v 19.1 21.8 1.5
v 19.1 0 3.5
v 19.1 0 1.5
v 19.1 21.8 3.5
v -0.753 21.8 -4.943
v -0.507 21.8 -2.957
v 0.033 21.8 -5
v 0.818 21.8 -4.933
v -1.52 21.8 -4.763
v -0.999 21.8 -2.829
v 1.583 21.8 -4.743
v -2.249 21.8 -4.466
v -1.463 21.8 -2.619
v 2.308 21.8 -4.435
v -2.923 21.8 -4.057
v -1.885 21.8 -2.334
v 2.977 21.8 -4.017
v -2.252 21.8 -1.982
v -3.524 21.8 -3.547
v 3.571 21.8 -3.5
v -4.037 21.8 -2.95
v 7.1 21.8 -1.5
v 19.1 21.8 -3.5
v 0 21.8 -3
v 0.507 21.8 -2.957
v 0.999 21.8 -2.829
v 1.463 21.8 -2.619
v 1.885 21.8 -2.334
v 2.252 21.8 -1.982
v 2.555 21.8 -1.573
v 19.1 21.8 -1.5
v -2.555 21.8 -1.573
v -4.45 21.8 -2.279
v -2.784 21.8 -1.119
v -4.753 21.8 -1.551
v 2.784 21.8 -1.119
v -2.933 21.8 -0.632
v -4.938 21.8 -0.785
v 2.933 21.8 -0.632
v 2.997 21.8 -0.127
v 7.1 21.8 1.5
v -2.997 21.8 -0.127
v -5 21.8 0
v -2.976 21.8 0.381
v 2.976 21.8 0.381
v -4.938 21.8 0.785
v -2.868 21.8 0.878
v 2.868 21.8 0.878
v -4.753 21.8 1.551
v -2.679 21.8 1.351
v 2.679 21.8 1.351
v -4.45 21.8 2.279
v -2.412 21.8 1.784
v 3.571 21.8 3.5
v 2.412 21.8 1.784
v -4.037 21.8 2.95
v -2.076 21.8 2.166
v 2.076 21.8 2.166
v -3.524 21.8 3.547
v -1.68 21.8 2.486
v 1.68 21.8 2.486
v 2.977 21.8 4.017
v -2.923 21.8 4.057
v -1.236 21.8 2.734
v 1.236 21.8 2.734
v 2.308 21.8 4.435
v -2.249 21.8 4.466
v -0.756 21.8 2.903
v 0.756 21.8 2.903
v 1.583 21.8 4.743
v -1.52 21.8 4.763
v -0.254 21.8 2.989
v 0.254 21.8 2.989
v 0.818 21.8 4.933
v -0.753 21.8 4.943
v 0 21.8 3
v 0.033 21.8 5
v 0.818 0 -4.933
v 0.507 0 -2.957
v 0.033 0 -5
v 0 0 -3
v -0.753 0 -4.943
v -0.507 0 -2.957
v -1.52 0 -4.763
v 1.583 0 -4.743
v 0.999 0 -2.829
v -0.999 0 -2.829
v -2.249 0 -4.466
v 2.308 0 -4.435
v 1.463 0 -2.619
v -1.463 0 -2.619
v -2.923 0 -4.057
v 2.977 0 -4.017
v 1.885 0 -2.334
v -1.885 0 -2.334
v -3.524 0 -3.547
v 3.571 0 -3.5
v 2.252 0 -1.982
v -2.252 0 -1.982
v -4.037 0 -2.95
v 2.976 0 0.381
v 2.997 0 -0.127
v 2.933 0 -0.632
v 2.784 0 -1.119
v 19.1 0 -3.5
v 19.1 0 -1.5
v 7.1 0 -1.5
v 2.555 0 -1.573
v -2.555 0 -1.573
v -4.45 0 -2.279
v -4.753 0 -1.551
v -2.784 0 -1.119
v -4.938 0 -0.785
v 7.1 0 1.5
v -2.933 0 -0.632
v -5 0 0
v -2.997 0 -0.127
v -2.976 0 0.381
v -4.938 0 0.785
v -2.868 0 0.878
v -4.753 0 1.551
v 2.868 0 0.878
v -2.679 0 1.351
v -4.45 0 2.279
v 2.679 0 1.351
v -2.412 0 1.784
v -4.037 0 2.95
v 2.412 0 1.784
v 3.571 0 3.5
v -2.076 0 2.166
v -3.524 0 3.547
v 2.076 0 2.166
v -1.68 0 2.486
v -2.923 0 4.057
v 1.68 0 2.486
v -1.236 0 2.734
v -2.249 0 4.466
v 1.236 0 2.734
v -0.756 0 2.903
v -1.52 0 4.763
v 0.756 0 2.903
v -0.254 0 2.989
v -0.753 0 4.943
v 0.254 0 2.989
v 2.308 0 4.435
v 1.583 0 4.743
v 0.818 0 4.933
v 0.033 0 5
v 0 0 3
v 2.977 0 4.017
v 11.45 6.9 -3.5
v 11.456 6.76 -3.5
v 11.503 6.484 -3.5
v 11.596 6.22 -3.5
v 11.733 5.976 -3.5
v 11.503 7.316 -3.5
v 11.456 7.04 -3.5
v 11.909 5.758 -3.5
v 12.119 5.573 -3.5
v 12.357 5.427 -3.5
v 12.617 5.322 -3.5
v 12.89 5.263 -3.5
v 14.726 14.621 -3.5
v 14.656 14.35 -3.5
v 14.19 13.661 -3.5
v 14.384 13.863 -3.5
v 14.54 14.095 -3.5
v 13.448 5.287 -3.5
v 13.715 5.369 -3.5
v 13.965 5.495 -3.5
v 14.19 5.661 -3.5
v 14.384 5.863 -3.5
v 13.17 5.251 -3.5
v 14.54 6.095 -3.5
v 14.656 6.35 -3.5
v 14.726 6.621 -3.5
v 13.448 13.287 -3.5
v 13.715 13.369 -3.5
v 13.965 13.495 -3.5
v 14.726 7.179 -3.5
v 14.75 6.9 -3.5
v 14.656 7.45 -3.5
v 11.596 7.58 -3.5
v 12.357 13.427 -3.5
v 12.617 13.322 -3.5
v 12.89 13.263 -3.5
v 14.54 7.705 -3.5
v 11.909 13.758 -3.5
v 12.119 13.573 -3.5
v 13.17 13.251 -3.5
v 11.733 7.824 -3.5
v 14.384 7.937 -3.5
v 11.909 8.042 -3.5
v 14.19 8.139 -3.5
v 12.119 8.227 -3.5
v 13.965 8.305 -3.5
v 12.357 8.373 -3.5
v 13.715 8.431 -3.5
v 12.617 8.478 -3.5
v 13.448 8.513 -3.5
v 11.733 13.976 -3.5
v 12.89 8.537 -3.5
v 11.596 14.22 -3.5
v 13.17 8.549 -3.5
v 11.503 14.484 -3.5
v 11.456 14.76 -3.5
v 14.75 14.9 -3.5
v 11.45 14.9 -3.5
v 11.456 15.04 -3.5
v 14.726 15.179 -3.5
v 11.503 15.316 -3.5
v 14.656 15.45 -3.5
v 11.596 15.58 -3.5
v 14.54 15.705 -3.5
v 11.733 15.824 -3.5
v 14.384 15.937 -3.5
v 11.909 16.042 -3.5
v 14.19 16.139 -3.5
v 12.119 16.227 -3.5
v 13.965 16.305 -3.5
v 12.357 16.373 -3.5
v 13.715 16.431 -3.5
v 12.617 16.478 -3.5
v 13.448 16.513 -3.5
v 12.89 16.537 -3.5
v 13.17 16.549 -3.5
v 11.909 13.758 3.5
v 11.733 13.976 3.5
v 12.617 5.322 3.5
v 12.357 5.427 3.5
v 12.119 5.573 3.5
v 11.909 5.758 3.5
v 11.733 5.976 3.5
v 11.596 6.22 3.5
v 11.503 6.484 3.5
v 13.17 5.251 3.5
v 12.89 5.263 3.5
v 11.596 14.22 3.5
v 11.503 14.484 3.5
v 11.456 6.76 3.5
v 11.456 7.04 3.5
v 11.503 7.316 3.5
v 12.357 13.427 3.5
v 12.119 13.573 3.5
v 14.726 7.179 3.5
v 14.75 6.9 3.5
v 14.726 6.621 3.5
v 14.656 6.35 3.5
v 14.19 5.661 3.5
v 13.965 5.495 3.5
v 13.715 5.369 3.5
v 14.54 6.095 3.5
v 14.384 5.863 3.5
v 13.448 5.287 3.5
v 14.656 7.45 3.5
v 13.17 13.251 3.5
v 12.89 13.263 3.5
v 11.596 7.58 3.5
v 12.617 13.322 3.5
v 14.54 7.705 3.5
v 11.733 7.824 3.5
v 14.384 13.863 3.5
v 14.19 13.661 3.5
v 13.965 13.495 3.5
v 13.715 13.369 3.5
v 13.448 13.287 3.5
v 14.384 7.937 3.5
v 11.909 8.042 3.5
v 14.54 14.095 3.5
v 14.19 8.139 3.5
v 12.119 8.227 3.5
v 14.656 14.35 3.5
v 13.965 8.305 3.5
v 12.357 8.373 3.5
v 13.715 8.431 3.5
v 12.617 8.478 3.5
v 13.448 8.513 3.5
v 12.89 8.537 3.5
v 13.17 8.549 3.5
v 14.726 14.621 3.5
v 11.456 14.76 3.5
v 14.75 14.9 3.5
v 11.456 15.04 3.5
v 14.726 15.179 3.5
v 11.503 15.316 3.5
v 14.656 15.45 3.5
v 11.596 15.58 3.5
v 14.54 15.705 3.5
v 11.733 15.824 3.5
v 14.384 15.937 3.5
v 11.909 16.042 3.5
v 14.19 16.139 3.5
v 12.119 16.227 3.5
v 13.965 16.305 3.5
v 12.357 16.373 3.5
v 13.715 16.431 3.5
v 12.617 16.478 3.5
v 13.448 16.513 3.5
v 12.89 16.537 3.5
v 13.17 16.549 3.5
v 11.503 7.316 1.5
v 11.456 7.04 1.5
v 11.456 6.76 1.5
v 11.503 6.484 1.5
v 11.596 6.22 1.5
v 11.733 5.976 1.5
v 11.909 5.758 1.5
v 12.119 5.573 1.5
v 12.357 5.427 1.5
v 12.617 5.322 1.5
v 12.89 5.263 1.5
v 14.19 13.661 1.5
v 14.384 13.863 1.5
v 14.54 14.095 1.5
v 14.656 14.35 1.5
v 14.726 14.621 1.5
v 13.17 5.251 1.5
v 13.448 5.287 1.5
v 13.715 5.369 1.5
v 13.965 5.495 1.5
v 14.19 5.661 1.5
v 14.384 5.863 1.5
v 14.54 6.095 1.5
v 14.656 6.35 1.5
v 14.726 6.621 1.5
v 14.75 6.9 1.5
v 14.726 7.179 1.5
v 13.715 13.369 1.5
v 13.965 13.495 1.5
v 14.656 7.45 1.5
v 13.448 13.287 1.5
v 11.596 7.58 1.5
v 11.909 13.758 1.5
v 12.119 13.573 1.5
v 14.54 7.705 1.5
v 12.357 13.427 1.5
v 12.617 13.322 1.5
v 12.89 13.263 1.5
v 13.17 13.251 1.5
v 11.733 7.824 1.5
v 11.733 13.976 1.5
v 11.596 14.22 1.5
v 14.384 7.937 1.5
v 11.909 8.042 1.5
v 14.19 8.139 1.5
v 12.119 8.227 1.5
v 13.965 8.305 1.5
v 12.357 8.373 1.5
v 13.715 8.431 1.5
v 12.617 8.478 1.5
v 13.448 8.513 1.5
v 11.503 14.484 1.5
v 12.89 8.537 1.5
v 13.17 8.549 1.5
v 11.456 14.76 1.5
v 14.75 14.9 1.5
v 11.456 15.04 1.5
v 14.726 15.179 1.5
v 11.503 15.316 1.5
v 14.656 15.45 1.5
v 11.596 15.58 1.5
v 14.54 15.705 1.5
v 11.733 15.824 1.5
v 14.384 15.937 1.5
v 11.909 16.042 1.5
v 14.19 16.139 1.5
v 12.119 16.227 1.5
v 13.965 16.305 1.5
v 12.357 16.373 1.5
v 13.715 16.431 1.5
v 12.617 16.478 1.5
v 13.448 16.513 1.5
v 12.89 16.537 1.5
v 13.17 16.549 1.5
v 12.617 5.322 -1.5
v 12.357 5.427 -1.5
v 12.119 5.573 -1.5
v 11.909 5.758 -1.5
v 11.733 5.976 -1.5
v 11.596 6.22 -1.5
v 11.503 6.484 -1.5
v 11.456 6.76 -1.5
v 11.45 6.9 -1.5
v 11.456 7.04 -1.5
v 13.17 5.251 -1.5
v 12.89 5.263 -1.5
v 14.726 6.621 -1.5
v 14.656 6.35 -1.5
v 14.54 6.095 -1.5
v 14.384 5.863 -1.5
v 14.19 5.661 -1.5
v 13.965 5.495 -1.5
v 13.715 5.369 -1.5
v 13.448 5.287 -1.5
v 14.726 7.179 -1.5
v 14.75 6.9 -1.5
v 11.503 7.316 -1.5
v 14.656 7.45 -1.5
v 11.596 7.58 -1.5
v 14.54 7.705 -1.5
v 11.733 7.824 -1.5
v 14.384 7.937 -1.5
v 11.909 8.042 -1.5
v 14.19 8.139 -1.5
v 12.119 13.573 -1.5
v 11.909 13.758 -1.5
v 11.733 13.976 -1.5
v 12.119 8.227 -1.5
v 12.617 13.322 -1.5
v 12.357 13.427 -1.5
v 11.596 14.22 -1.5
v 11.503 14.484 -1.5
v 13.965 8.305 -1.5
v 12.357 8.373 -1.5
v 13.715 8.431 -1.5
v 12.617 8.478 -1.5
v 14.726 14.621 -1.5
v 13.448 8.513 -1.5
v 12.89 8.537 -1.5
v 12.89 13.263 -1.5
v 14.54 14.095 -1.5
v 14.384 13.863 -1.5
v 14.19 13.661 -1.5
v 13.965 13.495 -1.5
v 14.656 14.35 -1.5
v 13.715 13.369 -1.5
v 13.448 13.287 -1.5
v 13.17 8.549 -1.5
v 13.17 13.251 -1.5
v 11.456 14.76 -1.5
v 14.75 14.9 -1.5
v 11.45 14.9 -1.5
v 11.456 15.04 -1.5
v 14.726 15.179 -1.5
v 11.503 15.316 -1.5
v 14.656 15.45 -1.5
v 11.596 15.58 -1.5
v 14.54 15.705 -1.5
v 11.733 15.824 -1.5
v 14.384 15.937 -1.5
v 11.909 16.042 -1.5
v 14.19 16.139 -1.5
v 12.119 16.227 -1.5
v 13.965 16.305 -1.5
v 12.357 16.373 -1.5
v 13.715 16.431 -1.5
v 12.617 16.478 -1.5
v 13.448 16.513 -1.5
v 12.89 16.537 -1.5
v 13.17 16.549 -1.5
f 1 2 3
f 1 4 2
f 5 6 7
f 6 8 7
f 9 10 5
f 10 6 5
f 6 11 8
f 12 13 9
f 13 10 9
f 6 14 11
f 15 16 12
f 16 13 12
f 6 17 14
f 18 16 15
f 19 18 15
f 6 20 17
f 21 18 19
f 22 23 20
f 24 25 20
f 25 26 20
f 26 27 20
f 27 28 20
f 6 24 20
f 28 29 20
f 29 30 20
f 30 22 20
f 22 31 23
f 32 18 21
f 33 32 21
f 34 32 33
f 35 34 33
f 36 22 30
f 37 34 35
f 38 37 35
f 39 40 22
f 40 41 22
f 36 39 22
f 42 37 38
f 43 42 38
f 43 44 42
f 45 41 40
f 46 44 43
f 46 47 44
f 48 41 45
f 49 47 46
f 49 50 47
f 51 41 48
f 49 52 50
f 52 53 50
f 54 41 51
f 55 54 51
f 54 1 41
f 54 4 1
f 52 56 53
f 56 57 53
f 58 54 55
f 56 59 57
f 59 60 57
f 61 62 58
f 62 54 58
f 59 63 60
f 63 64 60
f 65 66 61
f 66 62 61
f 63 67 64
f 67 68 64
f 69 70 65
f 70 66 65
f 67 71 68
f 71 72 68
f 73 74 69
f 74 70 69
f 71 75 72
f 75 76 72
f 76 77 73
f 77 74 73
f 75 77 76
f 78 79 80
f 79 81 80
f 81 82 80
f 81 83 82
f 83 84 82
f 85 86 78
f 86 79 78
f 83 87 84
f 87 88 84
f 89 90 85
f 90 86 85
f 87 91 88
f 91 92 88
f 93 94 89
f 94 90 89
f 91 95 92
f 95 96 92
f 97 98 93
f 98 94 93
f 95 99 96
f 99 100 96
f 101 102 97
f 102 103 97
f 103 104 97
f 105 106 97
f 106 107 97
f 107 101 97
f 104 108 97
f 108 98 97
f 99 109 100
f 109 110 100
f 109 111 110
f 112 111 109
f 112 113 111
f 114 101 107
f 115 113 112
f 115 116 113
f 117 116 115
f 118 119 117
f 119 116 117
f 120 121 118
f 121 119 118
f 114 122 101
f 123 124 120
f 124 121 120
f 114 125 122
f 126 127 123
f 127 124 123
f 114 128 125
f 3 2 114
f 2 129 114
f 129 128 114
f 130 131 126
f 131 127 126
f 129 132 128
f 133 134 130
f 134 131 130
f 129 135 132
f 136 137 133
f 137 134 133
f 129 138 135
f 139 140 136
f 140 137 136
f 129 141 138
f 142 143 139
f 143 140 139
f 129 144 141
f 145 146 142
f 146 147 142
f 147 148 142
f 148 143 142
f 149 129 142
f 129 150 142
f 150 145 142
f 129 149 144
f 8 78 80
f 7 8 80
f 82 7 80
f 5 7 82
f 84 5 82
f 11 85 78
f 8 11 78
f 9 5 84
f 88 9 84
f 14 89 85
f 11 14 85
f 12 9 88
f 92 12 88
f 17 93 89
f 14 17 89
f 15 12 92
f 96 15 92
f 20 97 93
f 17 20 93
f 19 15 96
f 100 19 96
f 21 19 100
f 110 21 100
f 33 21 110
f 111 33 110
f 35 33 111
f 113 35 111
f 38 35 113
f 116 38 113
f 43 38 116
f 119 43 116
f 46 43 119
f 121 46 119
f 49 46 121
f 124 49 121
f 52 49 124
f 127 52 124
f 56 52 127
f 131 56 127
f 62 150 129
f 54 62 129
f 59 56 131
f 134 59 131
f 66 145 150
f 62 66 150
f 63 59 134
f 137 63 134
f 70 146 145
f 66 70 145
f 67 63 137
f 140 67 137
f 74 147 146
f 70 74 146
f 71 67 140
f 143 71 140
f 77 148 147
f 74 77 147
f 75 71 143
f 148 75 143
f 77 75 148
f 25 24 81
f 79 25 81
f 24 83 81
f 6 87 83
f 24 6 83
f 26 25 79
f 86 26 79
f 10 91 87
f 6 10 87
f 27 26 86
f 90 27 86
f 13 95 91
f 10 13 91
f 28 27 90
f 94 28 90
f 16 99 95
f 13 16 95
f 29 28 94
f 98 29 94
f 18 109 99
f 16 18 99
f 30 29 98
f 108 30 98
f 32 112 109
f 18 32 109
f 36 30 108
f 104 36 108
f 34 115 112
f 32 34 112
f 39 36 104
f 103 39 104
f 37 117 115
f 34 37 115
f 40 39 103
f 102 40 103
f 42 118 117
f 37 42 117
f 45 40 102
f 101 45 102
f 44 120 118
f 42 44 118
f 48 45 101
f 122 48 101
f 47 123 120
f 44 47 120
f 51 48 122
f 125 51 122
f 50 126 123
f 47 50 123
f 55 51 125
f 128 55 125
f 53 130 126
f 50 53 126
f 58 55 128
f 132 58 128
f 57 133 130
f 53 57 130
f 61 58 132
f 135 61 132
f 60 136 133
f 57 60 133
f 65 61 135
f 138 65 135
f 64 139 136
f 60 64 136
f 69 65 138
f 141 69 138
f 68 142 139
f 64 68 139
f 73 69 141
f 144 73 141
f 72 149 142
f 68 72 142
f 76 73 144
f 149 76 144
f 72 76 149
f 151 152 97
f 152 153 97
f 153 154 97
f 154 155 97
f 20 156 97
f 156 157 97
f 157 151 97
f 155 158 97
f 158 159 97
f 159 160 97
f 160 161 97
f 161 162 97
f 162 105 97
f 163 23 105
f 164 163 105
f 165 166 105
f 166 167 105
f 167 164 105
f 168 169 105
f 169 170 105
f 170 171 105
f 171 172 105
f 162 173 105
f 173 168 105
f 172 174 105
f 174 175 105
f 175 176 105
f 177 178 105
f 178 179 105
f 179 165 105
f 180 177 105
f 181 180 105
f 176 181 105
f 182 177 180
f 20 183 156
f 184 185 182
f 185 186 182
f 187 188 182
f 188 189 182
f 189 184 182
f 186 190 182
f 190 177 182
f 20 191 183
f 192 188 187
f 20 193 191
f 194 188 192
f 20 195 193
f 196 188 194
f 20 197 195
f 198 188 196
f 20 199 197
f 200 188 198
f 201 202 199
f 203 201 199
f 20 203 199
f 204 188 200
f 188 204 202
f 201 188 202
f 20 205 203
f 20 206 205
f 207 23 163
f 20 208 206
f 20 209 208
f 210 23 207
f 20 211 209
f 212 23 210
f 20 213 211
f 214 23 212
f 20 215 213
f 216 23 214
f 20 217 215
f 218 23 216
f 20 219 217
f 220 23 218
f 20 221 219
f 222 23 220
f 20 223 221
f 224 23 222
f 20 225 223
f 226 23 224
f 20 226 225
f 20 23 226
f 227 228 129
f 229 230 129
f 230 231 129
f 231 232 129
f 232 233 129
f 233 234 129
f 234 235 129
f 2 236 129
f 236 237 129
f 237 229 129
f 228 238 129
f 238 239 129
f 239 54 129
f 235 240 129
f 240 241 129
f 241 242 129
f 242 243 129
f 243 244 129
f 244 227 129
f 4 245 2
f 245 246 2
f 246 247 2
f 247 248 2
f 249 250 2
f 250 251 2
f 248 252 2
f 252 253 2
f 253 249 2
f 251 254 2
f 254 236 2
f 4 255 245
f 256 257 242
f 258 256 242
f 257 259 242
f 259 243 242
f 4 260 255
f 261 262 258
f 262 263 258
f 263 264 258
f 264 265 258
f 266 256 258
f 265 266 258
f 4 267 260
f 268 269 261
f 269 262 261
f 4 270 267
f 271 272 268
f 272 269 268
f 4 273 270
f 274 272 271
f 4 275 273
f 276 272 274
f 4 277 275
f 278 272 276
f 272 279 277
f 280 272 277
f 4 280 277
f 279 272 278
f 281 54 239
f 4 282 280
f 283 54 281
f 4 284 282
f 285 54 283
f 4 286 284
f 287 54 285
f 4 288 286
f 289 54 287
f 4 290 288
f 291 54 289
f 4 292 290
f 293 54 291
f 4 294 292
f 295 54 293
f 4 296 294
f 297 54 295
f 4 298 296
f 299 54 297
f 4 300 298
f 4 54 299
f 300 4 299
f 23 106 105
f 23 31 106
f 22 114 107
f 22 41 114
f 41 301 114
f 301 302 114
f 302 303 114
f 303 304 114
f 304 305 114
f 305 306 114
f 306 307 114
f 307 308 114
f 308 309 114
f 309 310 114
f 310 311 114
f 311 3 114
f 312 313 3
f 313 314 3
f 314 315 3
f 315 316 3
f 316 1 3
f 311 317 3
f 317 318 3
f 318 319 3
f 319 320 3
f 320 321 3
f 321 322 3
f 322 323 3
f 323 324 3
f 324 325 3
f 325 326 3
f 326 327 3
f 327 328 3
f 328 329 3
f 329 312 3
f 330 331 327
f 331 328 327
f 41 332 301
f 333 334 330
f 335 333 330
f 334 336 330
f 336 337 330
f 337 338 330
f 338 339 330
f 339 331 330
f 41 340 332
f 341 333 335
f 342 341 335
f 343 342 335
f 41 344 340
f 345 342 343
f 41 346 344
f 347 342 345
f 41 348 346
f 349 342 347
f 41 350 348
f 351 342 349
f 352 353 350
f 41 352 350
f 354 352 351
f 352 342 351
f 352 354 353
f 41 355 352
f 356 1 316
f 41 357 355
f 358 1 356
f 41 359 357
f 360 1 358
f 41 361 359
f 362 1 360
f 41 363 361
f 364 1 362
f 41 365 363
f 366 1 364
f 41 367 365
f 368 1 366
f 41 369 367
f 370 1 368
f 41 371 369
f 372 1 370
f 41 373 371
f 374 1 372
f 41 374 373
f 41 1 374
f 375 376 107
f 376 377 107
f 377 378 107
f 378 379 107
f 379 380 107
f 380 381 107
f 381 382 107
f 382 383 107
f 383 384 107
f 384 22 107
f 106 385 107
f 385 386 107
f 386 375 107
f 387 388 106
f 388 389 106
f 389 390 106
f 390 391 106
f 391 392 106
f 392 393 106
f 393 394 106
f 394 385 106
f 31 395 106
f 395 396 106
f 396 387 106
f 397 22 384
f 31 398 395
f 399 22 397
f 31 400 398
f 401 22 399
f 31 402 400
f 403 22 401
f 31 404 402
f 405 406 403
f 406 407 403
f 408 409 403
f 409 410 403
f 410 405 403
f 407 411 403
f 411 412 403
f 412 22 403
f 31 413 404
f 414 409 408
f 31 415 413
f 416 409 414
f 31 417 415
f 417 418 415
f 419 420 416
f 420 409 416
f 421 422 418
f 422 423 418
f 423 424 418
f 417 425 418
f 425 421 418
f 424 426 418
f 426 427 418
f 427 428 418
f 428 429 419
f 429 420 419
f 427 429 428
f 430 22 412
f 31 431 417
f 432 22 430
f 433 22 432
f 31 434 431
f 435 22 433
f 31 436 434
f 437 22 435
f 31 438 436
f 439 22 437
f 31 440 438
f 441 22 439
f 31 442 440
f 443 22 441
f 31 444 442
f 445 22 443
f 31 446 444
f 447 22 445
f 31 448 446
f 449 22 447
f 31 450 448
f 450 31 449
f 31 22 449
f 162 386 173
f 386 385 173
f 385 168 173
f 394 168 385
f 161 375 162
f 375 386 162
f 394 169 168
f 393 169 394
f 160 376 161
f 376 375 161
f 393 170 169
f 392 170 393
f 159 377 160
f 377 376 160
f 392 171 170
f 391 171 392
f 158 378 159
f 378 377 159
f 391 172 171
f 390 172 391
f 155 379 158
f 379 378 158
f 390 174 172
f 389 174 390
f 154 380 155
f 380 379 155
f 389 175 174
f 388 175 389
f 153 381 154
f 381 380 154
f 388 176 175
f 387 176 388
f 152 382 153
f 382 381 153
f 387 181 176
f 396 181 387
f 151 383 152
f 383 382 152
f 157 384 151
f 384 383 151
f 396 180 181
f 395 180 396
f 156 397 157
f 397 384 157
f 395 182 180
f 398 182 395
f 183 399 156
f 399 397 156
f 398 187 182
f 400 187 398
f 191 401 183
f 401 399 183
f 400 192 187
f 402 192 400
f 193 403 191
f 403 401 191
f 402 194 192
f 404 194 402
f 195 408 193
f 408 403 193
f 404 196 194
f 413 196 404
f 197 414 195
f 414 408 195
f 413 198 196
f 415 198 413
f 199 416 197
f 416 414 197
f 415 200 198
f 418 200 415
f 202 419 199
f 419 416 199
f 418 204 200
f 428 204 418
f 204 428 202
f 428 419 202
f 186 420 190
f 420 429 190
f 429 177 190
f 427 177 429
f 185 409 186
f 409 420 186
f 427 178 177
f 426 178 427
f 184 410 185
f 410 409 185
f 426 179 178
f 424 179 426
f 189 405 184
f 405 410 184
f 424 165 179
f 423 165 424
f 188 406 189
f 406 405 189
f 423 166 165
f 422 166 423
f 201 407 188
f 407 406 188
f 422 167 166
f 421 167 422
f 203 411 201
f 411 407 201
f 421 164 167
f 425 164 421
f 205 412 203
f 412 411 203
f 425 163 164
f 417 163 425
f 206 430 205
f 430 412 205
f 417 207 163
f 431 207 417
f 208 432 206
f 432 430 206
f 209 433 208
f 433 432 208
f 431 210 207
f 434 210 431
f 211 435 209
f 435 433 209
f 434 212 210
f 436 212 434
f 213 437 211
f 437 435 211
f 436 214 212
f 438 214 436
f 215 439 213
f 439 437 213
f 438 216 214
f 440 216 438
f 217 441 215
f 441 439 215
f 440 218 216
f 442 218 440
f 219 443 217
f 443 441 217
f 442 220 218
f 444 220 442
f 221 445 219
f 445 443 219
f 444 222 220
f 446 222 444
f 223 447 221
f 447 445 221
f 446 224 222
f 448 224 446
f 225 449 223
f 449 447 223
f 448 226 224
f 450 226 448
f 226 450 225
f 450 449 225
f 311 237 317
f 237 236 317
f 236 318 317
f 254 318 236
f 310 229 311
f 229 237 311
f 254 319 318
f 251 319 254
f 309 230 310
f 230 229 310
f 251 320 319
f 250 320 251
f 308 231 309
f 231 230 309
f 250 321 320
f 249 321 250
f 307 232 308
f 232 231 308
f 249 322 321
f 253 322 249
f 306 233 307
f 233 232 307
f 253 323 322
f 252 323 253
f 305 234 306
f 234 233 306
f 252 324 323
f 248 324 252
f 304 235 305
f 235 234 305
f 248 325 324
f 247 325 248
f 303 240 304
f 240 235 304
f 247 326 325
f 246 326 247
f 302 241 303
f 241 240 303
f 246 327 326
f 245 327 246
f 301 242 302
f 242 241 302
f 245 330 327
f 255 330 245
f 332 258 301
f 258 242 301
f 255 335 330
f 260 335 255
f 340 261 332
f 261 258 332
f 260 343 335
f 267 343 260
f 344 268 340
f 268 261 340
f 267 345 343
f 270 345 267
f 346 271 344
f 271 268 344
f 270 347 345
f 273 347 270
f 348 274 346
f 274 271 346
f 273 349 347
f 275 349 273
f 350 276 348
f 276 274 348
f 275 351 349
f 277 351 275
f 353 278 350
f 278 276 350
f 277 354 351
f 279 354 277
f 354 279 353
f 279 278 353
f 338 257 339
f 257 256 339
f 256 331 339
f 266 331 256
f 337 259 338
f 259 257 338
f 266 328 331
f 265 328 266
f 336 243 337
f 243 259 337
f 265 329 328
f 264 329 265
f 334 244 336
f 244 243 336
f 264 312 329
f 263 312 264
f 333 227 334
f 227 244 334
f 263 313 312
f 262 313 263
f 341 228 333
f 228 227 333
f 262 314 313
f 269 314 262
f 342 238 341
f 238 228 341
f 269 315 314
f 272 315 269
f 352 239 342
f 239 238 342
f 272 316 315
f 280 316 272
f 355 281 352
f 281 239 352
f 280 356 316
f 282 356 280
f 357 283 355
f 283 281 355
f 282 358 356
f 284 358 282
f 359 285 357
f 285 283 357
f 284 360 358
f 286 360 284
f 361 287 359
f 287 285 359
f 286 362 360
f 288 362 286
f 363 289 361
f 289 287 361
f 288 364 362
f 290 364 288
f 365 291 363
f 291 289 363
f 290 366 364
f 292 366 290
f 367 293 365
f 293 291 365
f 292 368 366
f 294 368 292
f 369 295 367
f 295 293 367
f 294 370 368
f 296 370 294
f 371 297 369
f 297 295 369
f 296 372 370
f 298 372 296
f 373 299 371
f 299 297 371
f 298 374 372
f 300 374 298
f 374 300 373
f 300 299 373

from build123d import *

# Parameters (mm, degrees)
SKETCH_1_R          = 5
SKETCH_1_R_2        = 3
EXTRUDE_1_DEPTH     = 21.8
SKETCH_2_W          = 16
SKETCH_2_H          = 7
EXTRUDE_2_DEPTH     = 21.8
SKETCH_3_W          = 12
SKETCH_3_H          = 3
CUT_EXTRUDE_1_DEPTH = 22
SKETCH_4_R          = 1.65
CUT_EXTRUDE_2_DEPTH = 22


with BuildPart() as part:
    # 草图1 → 凸台-拉伸1 (new body)
    with BuildSketch(Plane(origin=(0, 0, 0), x_dir=(1, 0, 0), z_dir=(0, 1, 0))):
        with Locations(Location((0, 0, 0), (0, 0, 270))):
            Circle(SKETCH_1_R)
        with Locations(Location((0, 0, 0), (0, 0, 270))):
            Circle(SKETCH_1_R_2, mode=Mode.SUBTRACT)
    extrude(amount=EXTRUDE_1_DEPTH)

    # 草图2 → 凸台-拉伸2 (add)
    with BuildSketch(Plane(origin=(0, 21.8, 0), x_dir=(1, 0, 0), z_dir=(0, 1, 0))):
        with Locations((11.1, 0)):
            Rectangle(SKETCH_2_W, SKETCH_2_H)
    extrude(amount=-EXTRUDE_2_DEPTH)

    # 草图3 → 切除-拉伸1 (cut)
    with BuildSketch(Plane(origin=(0, 21.8, 0), x_dir=(1, 0, 0), z_dir=(0, 1, 0))):
        with Locations((13.1, 0)):
            Rectangle(SKETCH_3_W, SKETCH_3_H)
    extrude(amount=-CUT_EXTRUDE_1_DEPTH, mode=Mode.SUBTRACT)

    # 草图4 → 切除-拉伸2 (cut)
    with BuildSketch(Plane.XY.offset(3.5)):
        with Locations(Location((13.1, 14.9, 0), (0, 0, 180))):
            Circle(SKETCH_4_R)
        with Locations(Location((13.1, 6.9, 0), (0, 0, 180))):
            Circle(SKETCH_4_R)
    extrude(amount=-CUT_EXTRUDE_2_DEPTH, mode=Mode.SUBTRACT)


solid = part.part
